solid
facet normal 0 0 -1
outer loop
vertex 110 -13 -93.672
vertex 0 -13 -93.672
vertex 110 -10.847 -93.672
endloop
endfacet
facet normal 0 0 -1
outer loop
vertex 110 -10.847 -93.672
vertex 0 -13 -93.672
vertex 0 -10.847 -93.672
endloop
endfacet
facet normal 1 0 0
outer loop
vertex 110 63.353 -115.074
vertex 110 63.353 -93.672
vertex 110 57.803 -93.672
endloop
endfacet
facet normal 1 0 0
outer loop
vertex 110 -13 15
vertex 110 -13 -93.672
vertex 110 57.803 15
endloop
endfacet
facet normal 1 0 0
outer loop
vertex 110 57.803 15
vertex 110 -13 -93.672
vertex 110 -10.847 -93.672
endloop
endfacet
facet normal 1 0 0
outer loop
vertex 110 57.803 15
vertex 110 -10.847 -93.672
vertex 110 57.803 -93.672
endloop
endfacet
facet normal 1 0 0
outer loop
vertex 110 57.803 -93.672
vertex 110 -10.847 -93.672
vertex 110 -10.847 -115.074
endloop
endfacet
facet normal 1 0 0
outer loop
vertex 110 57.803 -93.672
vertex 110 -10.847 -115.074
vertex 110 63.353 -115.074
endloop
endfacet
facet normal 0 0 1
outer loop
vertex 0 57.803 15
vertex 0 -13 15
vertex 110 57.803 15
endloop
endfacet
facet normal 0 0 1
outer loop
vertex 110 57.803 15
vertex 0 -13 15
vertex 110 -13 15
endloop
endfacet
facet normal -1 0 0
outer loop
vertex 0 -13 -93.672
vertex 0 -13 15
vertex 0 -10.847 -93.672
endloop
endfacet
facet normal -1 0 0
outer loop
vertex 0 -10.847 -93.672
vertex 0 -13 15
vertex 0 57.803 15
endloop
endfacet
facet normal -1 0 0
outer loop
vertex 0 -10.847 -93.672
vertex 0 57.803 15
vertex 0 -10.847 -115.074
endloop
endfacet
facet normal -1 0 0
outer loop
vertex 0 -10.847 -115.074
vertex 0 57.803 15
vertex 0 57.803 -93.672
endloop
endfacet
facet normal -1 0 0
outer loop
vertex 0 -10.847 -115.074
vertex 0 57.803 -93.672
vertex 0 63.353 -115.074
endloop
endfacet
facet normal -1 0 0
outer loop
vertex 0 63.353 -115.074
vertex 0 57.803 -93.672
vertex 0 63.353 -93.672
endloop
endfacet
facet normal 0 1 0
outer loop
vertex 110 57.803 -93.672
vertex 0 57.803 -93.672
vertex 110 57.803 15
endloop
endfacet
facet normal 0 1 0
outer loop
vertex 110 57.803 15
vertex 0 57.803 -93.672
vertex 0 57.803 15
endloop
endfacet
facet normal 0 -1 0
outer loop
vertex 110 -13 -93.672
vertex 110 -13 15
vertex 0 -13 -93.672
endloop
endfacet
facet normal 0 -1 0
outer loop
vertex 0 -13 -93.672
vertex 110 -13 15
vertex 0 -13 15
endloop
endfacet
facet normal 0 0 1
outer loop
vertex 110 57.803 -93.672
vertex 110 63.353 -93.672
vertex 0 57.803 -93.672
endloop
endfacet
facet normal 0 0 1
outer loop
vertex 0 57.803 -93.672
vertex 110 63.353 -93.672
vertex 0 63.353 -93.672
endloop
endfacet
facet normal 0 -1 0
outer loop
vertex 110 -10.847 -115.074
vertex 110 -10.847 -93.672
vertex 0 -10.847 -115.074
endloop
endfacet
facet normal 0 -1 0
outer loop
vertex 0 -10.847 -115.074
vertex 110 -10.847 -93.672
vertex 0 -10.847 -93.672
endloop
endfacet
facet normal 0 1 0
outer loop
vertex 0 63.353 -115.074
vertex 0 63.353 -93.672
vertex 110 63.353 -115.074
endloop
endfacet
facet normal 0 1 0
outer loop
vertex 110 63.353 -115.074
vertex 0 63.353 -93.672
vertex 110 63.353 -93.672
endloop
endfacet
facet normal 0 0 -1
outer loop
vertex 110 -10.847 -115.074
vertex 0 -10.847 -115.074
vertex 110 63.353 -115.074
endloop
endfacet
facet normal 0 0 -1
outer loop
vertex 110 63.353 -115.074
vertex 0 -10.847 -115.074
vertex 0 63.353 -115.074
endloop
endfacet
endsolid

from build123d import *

# Parameters (mm, degrees)
SCROD_AND_CARRIERS_AND_HV_DEPTH      = 57.8026
SCROD_AND_CARRIERS_AND_HV_DEPTH_BACK = 13
SKETCH1_W                            = 110
SKETCH1_H                            = 108.6724
SKETCH2_W                            = 110
SKETCH2_H                            = 74.2
PMT_ASSEMBLY_DEPTH                   = 21.4016


with BuildPart() as part:
    # Sketch1 → SCROD-and-carriers-and-HV (new, two sides: drawn at the far end of the back side and taken through both)
    with BuildSketch(Plane(origin=(0, 0, 0), x_dir=(1, 0, 0), z_dir=(0, 1, 0)).offset(-SCROD_AND_CARRIERS_AND_HV_DEPTH_BACK)):
        with Locations((55, 39.3362)):
            Rectangle(SKETCH1_W, SKETCH1_H)
    extrude(amount=SCROD_AND_CARRIERS_AND_HV_DEPTH + SCROD_AND_CARRIERS_AND_HV_DEPTH_BACK)

    # Sketch2 → pmt-assembly (add)
    with BuildSketch(Plane(origin=(0, 0, -93.6724), x_dir=(-1, 0, 0), z_dir=(0, 0, -1))):
        with Locations((-55, 26.2526)):
            Rectangle(SKETCH2_W, SKETCH2_H)
    extrude(amount=PMT_ASSEMBLY_DEPTH)


solid = part.part
